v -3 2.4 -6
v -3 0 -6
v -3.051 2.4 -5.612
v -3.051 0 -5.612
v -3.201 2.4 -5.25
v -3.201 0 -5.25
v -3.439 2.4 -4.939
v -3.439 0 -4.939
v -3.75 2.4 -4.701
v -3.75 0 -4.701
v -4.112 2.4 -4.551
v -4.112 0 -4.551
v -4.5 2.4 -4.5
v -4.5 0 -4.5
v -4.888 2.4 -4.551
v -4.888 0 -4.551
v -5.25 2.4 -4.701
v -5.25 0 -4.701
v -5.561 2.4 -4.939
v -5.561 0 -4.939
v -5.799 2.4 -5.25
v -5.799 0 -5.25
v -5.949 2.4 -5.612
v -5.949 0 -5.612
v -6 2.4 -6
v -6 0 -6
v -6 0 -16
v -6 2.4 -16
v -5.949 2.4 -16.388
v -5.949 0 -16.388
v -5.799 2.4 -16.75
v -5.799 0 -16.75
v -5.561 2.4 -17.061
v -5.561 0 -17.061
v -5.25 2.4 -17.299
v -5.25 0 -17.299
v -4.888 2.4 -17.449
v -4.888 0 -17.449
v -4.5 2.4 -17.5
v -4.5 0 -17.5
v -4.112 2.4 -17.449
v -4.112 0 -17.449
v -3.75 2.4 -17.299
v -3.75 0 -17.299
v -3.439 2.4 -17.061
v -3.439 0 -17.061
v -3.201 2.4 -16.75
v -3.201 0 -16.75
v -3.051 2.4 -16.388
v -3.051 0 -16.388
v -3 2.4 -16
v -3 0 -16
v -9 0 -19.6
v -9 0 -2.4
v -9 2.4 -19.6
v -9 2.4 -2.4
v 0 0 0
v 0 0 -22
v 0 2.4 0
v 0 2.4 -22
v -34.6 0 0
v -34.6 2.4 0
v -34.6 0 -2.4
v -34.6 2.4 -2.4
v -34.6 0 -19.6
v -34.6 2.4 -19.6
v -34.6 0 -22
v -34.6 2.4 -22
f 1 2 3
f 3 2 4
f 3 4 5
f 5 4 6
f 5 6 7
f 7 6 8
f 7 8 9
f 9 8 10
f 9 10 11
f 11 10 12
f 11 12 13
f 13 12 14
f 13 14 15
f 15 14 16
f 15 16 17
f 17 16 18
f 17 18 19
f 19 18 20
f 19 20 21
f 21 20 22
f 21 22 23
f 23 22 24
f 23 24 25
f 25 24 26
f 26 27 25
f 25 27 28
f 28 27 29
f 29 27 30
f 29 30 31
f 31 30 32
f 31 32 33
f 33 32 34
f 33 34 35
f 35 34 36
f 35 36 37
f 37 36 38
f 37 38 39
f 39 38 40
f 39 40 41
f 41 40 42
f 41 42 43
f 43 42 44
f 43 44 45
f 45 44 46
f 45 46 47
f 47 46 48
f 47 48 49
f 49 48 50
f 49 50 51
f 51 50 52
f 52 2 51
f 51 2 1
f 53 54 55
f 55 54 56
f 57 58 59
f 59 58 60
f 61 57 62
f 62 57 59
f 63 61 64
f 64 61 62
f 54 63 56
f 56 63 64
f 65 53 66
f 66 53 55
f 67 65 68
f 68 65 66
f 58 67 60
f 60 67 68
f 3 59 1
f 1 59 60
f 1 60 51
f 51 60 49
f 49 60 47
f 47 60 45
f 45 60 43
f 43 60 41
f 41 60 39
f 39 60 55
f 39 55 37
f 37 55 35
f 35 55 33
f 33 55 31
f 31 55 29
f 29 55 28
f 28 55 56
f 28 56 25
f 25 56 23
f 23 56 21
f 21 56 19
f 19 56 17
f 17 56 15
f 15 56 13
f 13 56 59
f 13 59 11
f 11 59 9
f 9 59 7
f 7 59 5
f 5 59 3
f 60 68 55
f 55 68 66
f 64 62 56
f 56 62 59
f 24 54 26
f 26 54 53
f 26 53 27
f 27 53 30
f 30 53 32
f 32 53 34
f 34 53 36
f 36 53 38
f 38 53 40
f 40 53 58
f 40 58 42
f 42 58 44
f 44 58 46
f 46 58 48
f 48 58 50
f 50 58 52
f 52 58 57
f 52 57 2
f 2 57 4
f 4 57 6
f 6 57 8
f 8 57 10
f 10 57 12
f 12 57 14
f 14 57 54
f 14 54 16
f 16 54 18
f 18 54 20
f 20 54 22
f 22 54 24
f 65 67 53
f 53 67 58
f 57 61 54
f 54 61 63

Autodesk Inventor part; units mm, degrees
ref_plane "YZ Plane" through (0, 0, 0) normal (1, 0, 0) x (0, 1, 0)
ref_plane "XZ Plane" through (0, 0, 0) normal (0, 1, 0) x (-1, 0, 0)
ref_plane "XY Plane" through (0, 0, 0) normal (0, 0, 1) x (1, 0, 0)
sketch "Эскиз1" plane through (0, 0, 0) normal (0, 1, 0) x (-1, 0, 0)
  line L0 (0, 0) -> (9, 0)
  line L1 (9, 0) -> (9, -2.4)
  line L2 (9, -22) -> (0, -22)
  line L3 (0, -22) -> (0, 0)
  line L4 (9, -22) -> (34.6, -22)
  line L5 (34.6, -22) -> (34.6, -19.6)
  line L6 (34.6, -19.6) -> (9, -19.6)
  line L7 (9, -11) -> (0, -11)
  line L8 (9, 0) -> (34.6, 0)
  line L9 (34.6, 0) -> (34.6, -2.4)
  line L10 (34.6, -2.4) -> (9, -2.4)
  line L11 (9, -2.4) -> (9, -22)
  line L12 (4.5, -6) -> (4.5, -16) construction
  line L13 (3, -6) -> (3, -16)
  line L14 (6, -16) -> (6, -6)
  arc A0 (6, -6) -> (3, -6) centre (4.5, -6) ccw
  arc A1 (3, -16) -> (6, -16) centre (4.5, -16) ccw
  point P0 (4.5, -11)
  dimension "d0" = 9
  dimension "d1" = 22
  dimension "d2" = 25.6
  dimension "d3" = 2.4
  dimension "d4" = 5
  dimension "d5" = 3
  dimension "d6" = 30.1
extrude "Выдавливание1" add sketch "Эскиз1" along normal blind 2.4 contours L0 L1 L11 L7 L14 A0 L13 L3 | L8 L9 L10 L1 | L7 L13 A1 L14 L11 L2 L3 | L11 L6 L5 L4
properties part number "FixScan"
